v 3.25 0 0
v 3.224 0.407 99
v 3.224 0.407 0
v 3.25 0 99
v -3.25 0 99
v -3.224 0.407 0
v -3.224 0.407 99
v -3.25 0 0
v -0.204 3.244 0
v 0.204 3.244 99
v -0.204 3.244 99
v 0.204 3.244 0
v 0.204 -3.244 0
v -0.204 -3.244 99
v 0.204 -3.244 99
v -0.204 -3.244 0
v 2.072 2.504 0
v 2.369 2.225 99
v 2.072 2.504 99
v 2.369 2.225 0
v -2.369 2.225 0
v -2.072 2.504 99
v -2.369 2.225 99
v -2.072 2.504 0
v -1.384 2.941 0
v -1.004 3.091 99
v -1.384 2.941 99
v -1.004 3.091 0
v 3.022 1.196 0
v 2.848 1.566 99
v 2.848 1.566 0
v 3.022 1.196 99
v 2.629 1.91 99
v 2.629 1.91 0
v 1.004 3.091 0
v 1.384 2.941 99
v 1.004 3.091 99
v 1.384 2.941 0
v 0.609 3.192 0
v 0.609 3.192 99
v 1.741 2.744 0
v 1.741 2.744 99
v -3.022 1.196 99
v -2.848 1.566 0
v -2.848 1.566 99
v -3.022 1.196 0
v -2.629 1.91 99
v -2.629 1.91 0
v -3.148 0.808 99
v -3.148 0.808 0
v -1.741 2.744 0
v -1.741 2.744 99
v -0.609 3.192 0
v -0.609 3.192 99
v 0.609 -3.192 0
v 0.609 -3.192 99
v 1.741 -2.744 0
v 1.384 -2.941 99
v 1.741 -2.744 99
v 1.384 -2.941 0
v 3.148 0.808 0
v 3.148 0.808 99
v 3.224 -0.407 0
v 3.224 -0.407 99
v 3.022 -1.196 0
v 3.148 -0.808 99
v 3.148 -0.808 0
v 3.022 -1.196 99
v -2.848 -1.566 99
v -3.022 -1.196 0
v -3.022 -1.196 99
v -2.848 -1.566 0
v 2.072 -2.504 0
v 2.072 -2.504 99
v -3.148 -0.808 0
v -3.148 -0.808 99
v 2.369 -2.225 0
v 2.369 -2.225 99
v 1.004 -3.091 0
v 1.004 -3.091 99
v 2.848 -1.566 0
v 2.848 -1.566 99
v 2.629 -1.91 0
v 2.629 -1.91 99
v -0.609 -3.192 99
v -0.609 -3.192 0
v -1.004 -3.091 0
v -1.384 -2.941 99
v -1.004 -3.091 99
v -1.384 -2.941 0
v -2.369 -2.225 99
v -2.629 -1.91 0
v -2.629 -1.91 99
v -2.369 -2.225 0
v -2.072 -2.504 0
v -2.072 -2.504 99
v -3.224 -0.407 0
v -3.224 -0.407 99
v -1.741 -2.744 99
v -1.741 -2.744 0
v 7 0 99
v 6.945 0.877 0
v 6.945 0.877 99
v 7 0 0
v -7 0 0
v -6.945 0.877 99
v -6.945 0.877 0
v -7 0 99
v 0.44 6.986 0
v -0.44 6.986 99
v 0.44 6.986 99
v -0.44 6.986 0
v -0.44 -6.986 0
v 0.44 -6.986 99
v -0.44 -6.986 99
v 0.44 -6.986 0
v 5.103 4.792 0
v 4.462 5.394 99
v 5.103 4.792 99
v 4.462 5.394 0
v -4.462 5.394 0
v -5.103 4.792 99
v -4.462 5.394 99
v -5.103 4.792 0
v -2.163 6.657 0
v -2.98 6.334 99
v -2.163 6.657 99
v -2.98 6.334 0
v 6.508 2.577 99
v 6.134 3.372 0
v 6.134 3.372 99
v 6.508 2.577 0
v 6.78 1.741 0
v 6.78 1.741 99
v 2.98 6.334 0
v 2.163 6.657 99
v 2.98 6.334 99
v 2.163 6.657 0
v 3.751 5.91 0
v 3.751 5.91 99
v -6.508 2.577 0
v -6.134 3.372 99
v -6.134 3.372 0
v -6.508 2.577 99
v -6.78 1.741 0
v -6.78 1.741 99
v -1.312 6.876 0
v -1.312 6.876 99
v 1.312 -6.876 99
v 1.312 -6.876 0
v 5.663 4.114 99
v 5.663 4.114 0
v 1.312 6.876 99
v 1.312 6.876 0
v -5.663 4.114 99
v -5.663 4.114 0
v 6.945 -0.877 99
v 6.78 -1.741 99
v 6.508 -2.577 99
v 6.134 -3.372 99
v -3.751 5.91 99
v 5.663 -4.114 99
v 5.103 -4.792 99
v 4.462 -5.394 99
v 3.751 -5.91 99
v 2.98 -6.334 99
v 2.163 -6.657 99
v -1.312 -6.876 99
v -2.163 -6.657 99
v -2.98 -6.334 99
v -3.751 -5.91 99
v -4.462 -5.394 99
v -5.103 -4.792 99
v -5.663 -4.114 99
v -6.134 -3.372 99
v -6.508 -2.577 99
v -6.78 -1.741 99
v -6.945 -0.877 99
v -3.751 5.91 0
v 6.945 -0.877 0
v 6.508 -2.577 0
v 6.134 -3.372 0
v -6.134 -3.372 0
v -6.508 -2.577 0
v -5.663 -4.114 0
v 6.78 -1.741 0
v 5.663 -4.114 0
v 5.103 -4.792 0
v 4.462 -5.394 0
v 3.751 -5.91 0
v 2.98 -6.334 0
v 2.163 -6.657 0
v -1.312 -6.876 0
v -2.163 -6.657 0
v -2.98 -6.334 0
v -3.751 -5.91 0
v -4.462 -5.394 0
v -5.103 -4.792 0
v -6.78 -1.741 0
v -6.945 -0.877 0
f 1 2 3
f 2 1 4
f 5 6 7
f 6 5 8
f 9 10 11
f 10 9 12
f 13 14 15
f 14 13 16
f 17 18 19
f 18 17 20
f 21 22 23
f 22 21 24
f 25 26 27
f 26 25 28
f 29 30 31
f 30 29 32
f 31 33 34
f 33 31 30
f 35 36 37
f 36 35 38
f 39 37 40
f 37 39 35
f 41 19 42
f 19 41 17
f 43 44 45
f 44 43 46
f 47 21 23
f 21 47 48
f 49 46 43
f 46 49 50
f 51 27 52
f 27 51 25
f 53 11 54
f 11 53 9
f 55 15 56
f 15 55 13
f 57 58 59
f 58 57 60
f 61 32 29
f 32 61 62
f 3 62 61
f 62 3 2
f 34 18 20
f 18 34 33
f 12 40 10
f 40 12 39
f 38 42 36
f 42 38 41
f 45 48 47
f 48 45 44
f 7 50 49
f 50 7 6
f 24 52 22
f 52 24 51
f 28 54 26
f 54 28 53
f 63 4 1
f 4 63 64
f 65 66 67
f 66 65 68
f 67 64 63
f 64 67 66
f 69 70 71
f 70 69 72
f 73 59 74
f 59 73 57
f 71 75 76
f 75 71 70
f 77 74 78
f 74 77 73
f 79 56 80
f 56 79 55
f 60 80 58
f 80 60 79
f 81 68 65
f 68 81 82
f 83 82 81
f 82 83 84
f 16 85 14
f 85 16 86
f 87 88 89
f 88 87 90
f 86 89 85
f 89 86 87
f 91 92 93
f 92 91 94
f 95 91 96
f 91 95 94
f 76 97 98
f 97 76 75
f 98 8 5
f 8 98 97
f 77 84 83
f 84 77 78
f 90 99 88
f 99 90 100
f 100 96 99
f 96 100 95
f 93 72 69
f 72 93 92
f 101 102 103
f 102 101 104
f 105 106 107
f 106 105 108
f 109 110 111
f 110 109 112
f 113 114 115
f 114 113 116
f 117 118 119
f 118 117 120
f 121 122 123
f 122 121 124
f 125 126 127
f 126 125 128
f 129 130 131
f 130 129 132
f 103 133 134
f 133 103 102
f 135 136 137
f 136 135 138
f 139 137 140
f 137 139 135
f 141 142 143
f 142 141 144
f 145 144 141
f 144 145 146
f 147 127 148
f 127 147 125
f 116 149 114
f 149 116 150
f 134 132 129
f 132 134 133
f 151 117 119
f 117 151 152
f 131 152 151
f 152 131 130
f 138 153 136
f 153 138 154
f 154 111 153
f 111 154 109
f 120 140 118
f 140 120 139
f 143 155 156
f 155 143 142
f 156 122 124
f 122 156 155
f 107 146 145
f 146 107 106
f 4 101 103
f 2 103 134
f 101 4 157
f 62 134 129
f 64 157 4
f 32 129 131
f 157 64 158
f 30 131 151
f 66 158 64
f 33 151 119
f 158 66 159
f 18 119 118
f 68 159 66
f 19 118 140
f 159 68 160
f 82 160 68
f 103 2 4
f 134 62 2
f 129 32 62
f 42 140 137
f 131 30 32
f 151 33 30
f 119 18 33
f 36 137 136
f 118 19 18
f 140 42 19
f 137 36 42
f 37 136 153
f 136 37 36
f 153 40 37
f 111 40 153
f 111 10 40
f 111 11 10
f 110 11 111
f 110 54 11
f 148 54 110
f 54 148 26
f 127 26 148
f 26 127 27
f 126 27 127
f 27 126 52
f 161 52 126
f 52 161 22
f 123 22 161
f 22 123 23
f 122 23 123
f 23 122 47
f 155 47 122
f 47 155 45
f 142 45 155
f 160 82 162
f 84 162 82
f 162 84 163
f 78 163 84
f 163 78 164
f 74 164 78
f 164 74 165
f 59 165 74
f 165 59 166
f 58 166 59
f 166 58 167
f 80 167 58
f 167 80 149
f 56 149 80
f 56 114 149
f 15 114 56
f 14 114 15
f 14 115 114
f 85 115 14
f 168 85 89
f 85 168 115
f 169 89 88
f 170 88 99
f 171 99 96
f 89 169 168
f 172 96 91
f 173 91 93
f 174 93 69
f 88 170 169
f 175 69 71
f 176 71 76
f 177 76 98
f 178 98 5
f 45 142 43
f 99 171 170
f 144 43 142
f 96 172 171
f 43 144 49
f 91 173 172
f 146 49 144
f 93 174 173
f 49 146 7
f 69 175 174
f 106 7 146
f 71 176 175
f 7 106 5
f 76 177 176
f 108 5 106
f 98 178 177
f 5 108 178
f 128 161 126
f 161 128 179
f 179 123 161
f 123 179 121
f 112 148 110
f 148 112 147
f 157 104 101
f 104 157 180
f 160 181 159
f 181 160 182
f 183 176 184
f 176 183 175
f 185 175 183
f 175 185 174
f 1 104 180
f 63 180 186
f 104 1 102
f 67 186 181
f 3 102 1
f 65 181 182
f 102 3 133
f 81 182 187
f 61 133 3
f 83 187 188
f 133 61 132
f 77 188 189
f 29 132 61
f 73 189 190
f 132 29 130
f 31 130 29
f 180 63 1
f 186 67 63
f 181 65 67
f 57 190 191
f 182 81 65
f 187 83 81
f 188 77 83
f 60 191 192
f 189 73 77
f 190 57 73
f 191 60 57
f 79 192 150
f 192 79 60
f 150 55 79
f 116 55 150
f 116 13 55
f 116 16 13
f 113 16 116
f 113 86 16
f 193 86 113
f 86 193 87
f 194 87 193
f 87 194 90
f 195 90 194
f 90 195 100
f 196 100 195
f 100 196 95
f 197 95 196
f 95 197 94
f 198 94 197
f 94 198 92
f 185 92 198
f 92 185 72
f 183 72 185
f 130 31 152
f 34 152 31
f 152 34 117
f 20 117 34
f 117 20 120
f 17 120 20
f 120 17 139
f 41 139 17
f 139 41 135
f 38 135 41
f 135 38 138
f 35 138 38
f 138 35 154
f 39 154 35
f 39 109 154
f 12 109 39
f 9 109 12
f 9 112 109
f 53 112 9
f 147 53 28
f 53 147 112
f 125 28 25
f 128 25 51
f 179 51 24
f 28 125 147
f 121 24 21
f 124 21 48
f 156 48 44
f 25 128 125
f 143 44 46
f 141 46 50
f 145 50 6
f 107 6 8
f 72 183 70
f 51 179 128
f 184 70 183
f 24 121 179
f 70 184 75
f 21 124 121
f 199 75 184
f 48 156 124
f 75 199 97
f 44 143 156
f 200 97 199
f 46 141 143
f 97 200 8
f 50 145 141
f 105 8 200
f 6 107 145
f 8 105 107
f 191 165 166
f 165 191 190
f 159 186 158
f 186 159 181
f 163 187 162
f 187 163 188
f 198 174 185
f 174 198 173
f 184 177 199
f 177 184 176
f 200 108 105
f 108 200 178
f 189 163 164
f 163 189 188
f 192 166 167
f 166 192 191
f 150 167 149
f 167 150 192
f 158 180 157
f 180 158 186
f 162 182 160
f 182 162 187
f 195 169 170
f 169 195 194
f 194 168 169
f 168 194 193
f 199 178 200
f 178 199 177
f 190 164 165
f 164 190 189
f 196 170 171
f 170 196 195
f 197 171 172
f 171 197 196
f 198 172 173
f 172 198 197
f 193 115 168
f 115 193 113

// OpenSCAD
$fn = 50;


difference() {
	union() {
		cylinder(h = 99, r = 7.0000000000);
	}
	union() {
		translate(v = [0.0000000000, 0.0000000000, -100.0000000000]) {
			cylinder(h = 200, r = 3.2500000000);
		}
		cylinder(h = 99, r = 1.8000000000);
		cylinder(h = 99, r = 1.8000000000);
		cylinder(h = 99, r = 1.8000000000);
	}
}
